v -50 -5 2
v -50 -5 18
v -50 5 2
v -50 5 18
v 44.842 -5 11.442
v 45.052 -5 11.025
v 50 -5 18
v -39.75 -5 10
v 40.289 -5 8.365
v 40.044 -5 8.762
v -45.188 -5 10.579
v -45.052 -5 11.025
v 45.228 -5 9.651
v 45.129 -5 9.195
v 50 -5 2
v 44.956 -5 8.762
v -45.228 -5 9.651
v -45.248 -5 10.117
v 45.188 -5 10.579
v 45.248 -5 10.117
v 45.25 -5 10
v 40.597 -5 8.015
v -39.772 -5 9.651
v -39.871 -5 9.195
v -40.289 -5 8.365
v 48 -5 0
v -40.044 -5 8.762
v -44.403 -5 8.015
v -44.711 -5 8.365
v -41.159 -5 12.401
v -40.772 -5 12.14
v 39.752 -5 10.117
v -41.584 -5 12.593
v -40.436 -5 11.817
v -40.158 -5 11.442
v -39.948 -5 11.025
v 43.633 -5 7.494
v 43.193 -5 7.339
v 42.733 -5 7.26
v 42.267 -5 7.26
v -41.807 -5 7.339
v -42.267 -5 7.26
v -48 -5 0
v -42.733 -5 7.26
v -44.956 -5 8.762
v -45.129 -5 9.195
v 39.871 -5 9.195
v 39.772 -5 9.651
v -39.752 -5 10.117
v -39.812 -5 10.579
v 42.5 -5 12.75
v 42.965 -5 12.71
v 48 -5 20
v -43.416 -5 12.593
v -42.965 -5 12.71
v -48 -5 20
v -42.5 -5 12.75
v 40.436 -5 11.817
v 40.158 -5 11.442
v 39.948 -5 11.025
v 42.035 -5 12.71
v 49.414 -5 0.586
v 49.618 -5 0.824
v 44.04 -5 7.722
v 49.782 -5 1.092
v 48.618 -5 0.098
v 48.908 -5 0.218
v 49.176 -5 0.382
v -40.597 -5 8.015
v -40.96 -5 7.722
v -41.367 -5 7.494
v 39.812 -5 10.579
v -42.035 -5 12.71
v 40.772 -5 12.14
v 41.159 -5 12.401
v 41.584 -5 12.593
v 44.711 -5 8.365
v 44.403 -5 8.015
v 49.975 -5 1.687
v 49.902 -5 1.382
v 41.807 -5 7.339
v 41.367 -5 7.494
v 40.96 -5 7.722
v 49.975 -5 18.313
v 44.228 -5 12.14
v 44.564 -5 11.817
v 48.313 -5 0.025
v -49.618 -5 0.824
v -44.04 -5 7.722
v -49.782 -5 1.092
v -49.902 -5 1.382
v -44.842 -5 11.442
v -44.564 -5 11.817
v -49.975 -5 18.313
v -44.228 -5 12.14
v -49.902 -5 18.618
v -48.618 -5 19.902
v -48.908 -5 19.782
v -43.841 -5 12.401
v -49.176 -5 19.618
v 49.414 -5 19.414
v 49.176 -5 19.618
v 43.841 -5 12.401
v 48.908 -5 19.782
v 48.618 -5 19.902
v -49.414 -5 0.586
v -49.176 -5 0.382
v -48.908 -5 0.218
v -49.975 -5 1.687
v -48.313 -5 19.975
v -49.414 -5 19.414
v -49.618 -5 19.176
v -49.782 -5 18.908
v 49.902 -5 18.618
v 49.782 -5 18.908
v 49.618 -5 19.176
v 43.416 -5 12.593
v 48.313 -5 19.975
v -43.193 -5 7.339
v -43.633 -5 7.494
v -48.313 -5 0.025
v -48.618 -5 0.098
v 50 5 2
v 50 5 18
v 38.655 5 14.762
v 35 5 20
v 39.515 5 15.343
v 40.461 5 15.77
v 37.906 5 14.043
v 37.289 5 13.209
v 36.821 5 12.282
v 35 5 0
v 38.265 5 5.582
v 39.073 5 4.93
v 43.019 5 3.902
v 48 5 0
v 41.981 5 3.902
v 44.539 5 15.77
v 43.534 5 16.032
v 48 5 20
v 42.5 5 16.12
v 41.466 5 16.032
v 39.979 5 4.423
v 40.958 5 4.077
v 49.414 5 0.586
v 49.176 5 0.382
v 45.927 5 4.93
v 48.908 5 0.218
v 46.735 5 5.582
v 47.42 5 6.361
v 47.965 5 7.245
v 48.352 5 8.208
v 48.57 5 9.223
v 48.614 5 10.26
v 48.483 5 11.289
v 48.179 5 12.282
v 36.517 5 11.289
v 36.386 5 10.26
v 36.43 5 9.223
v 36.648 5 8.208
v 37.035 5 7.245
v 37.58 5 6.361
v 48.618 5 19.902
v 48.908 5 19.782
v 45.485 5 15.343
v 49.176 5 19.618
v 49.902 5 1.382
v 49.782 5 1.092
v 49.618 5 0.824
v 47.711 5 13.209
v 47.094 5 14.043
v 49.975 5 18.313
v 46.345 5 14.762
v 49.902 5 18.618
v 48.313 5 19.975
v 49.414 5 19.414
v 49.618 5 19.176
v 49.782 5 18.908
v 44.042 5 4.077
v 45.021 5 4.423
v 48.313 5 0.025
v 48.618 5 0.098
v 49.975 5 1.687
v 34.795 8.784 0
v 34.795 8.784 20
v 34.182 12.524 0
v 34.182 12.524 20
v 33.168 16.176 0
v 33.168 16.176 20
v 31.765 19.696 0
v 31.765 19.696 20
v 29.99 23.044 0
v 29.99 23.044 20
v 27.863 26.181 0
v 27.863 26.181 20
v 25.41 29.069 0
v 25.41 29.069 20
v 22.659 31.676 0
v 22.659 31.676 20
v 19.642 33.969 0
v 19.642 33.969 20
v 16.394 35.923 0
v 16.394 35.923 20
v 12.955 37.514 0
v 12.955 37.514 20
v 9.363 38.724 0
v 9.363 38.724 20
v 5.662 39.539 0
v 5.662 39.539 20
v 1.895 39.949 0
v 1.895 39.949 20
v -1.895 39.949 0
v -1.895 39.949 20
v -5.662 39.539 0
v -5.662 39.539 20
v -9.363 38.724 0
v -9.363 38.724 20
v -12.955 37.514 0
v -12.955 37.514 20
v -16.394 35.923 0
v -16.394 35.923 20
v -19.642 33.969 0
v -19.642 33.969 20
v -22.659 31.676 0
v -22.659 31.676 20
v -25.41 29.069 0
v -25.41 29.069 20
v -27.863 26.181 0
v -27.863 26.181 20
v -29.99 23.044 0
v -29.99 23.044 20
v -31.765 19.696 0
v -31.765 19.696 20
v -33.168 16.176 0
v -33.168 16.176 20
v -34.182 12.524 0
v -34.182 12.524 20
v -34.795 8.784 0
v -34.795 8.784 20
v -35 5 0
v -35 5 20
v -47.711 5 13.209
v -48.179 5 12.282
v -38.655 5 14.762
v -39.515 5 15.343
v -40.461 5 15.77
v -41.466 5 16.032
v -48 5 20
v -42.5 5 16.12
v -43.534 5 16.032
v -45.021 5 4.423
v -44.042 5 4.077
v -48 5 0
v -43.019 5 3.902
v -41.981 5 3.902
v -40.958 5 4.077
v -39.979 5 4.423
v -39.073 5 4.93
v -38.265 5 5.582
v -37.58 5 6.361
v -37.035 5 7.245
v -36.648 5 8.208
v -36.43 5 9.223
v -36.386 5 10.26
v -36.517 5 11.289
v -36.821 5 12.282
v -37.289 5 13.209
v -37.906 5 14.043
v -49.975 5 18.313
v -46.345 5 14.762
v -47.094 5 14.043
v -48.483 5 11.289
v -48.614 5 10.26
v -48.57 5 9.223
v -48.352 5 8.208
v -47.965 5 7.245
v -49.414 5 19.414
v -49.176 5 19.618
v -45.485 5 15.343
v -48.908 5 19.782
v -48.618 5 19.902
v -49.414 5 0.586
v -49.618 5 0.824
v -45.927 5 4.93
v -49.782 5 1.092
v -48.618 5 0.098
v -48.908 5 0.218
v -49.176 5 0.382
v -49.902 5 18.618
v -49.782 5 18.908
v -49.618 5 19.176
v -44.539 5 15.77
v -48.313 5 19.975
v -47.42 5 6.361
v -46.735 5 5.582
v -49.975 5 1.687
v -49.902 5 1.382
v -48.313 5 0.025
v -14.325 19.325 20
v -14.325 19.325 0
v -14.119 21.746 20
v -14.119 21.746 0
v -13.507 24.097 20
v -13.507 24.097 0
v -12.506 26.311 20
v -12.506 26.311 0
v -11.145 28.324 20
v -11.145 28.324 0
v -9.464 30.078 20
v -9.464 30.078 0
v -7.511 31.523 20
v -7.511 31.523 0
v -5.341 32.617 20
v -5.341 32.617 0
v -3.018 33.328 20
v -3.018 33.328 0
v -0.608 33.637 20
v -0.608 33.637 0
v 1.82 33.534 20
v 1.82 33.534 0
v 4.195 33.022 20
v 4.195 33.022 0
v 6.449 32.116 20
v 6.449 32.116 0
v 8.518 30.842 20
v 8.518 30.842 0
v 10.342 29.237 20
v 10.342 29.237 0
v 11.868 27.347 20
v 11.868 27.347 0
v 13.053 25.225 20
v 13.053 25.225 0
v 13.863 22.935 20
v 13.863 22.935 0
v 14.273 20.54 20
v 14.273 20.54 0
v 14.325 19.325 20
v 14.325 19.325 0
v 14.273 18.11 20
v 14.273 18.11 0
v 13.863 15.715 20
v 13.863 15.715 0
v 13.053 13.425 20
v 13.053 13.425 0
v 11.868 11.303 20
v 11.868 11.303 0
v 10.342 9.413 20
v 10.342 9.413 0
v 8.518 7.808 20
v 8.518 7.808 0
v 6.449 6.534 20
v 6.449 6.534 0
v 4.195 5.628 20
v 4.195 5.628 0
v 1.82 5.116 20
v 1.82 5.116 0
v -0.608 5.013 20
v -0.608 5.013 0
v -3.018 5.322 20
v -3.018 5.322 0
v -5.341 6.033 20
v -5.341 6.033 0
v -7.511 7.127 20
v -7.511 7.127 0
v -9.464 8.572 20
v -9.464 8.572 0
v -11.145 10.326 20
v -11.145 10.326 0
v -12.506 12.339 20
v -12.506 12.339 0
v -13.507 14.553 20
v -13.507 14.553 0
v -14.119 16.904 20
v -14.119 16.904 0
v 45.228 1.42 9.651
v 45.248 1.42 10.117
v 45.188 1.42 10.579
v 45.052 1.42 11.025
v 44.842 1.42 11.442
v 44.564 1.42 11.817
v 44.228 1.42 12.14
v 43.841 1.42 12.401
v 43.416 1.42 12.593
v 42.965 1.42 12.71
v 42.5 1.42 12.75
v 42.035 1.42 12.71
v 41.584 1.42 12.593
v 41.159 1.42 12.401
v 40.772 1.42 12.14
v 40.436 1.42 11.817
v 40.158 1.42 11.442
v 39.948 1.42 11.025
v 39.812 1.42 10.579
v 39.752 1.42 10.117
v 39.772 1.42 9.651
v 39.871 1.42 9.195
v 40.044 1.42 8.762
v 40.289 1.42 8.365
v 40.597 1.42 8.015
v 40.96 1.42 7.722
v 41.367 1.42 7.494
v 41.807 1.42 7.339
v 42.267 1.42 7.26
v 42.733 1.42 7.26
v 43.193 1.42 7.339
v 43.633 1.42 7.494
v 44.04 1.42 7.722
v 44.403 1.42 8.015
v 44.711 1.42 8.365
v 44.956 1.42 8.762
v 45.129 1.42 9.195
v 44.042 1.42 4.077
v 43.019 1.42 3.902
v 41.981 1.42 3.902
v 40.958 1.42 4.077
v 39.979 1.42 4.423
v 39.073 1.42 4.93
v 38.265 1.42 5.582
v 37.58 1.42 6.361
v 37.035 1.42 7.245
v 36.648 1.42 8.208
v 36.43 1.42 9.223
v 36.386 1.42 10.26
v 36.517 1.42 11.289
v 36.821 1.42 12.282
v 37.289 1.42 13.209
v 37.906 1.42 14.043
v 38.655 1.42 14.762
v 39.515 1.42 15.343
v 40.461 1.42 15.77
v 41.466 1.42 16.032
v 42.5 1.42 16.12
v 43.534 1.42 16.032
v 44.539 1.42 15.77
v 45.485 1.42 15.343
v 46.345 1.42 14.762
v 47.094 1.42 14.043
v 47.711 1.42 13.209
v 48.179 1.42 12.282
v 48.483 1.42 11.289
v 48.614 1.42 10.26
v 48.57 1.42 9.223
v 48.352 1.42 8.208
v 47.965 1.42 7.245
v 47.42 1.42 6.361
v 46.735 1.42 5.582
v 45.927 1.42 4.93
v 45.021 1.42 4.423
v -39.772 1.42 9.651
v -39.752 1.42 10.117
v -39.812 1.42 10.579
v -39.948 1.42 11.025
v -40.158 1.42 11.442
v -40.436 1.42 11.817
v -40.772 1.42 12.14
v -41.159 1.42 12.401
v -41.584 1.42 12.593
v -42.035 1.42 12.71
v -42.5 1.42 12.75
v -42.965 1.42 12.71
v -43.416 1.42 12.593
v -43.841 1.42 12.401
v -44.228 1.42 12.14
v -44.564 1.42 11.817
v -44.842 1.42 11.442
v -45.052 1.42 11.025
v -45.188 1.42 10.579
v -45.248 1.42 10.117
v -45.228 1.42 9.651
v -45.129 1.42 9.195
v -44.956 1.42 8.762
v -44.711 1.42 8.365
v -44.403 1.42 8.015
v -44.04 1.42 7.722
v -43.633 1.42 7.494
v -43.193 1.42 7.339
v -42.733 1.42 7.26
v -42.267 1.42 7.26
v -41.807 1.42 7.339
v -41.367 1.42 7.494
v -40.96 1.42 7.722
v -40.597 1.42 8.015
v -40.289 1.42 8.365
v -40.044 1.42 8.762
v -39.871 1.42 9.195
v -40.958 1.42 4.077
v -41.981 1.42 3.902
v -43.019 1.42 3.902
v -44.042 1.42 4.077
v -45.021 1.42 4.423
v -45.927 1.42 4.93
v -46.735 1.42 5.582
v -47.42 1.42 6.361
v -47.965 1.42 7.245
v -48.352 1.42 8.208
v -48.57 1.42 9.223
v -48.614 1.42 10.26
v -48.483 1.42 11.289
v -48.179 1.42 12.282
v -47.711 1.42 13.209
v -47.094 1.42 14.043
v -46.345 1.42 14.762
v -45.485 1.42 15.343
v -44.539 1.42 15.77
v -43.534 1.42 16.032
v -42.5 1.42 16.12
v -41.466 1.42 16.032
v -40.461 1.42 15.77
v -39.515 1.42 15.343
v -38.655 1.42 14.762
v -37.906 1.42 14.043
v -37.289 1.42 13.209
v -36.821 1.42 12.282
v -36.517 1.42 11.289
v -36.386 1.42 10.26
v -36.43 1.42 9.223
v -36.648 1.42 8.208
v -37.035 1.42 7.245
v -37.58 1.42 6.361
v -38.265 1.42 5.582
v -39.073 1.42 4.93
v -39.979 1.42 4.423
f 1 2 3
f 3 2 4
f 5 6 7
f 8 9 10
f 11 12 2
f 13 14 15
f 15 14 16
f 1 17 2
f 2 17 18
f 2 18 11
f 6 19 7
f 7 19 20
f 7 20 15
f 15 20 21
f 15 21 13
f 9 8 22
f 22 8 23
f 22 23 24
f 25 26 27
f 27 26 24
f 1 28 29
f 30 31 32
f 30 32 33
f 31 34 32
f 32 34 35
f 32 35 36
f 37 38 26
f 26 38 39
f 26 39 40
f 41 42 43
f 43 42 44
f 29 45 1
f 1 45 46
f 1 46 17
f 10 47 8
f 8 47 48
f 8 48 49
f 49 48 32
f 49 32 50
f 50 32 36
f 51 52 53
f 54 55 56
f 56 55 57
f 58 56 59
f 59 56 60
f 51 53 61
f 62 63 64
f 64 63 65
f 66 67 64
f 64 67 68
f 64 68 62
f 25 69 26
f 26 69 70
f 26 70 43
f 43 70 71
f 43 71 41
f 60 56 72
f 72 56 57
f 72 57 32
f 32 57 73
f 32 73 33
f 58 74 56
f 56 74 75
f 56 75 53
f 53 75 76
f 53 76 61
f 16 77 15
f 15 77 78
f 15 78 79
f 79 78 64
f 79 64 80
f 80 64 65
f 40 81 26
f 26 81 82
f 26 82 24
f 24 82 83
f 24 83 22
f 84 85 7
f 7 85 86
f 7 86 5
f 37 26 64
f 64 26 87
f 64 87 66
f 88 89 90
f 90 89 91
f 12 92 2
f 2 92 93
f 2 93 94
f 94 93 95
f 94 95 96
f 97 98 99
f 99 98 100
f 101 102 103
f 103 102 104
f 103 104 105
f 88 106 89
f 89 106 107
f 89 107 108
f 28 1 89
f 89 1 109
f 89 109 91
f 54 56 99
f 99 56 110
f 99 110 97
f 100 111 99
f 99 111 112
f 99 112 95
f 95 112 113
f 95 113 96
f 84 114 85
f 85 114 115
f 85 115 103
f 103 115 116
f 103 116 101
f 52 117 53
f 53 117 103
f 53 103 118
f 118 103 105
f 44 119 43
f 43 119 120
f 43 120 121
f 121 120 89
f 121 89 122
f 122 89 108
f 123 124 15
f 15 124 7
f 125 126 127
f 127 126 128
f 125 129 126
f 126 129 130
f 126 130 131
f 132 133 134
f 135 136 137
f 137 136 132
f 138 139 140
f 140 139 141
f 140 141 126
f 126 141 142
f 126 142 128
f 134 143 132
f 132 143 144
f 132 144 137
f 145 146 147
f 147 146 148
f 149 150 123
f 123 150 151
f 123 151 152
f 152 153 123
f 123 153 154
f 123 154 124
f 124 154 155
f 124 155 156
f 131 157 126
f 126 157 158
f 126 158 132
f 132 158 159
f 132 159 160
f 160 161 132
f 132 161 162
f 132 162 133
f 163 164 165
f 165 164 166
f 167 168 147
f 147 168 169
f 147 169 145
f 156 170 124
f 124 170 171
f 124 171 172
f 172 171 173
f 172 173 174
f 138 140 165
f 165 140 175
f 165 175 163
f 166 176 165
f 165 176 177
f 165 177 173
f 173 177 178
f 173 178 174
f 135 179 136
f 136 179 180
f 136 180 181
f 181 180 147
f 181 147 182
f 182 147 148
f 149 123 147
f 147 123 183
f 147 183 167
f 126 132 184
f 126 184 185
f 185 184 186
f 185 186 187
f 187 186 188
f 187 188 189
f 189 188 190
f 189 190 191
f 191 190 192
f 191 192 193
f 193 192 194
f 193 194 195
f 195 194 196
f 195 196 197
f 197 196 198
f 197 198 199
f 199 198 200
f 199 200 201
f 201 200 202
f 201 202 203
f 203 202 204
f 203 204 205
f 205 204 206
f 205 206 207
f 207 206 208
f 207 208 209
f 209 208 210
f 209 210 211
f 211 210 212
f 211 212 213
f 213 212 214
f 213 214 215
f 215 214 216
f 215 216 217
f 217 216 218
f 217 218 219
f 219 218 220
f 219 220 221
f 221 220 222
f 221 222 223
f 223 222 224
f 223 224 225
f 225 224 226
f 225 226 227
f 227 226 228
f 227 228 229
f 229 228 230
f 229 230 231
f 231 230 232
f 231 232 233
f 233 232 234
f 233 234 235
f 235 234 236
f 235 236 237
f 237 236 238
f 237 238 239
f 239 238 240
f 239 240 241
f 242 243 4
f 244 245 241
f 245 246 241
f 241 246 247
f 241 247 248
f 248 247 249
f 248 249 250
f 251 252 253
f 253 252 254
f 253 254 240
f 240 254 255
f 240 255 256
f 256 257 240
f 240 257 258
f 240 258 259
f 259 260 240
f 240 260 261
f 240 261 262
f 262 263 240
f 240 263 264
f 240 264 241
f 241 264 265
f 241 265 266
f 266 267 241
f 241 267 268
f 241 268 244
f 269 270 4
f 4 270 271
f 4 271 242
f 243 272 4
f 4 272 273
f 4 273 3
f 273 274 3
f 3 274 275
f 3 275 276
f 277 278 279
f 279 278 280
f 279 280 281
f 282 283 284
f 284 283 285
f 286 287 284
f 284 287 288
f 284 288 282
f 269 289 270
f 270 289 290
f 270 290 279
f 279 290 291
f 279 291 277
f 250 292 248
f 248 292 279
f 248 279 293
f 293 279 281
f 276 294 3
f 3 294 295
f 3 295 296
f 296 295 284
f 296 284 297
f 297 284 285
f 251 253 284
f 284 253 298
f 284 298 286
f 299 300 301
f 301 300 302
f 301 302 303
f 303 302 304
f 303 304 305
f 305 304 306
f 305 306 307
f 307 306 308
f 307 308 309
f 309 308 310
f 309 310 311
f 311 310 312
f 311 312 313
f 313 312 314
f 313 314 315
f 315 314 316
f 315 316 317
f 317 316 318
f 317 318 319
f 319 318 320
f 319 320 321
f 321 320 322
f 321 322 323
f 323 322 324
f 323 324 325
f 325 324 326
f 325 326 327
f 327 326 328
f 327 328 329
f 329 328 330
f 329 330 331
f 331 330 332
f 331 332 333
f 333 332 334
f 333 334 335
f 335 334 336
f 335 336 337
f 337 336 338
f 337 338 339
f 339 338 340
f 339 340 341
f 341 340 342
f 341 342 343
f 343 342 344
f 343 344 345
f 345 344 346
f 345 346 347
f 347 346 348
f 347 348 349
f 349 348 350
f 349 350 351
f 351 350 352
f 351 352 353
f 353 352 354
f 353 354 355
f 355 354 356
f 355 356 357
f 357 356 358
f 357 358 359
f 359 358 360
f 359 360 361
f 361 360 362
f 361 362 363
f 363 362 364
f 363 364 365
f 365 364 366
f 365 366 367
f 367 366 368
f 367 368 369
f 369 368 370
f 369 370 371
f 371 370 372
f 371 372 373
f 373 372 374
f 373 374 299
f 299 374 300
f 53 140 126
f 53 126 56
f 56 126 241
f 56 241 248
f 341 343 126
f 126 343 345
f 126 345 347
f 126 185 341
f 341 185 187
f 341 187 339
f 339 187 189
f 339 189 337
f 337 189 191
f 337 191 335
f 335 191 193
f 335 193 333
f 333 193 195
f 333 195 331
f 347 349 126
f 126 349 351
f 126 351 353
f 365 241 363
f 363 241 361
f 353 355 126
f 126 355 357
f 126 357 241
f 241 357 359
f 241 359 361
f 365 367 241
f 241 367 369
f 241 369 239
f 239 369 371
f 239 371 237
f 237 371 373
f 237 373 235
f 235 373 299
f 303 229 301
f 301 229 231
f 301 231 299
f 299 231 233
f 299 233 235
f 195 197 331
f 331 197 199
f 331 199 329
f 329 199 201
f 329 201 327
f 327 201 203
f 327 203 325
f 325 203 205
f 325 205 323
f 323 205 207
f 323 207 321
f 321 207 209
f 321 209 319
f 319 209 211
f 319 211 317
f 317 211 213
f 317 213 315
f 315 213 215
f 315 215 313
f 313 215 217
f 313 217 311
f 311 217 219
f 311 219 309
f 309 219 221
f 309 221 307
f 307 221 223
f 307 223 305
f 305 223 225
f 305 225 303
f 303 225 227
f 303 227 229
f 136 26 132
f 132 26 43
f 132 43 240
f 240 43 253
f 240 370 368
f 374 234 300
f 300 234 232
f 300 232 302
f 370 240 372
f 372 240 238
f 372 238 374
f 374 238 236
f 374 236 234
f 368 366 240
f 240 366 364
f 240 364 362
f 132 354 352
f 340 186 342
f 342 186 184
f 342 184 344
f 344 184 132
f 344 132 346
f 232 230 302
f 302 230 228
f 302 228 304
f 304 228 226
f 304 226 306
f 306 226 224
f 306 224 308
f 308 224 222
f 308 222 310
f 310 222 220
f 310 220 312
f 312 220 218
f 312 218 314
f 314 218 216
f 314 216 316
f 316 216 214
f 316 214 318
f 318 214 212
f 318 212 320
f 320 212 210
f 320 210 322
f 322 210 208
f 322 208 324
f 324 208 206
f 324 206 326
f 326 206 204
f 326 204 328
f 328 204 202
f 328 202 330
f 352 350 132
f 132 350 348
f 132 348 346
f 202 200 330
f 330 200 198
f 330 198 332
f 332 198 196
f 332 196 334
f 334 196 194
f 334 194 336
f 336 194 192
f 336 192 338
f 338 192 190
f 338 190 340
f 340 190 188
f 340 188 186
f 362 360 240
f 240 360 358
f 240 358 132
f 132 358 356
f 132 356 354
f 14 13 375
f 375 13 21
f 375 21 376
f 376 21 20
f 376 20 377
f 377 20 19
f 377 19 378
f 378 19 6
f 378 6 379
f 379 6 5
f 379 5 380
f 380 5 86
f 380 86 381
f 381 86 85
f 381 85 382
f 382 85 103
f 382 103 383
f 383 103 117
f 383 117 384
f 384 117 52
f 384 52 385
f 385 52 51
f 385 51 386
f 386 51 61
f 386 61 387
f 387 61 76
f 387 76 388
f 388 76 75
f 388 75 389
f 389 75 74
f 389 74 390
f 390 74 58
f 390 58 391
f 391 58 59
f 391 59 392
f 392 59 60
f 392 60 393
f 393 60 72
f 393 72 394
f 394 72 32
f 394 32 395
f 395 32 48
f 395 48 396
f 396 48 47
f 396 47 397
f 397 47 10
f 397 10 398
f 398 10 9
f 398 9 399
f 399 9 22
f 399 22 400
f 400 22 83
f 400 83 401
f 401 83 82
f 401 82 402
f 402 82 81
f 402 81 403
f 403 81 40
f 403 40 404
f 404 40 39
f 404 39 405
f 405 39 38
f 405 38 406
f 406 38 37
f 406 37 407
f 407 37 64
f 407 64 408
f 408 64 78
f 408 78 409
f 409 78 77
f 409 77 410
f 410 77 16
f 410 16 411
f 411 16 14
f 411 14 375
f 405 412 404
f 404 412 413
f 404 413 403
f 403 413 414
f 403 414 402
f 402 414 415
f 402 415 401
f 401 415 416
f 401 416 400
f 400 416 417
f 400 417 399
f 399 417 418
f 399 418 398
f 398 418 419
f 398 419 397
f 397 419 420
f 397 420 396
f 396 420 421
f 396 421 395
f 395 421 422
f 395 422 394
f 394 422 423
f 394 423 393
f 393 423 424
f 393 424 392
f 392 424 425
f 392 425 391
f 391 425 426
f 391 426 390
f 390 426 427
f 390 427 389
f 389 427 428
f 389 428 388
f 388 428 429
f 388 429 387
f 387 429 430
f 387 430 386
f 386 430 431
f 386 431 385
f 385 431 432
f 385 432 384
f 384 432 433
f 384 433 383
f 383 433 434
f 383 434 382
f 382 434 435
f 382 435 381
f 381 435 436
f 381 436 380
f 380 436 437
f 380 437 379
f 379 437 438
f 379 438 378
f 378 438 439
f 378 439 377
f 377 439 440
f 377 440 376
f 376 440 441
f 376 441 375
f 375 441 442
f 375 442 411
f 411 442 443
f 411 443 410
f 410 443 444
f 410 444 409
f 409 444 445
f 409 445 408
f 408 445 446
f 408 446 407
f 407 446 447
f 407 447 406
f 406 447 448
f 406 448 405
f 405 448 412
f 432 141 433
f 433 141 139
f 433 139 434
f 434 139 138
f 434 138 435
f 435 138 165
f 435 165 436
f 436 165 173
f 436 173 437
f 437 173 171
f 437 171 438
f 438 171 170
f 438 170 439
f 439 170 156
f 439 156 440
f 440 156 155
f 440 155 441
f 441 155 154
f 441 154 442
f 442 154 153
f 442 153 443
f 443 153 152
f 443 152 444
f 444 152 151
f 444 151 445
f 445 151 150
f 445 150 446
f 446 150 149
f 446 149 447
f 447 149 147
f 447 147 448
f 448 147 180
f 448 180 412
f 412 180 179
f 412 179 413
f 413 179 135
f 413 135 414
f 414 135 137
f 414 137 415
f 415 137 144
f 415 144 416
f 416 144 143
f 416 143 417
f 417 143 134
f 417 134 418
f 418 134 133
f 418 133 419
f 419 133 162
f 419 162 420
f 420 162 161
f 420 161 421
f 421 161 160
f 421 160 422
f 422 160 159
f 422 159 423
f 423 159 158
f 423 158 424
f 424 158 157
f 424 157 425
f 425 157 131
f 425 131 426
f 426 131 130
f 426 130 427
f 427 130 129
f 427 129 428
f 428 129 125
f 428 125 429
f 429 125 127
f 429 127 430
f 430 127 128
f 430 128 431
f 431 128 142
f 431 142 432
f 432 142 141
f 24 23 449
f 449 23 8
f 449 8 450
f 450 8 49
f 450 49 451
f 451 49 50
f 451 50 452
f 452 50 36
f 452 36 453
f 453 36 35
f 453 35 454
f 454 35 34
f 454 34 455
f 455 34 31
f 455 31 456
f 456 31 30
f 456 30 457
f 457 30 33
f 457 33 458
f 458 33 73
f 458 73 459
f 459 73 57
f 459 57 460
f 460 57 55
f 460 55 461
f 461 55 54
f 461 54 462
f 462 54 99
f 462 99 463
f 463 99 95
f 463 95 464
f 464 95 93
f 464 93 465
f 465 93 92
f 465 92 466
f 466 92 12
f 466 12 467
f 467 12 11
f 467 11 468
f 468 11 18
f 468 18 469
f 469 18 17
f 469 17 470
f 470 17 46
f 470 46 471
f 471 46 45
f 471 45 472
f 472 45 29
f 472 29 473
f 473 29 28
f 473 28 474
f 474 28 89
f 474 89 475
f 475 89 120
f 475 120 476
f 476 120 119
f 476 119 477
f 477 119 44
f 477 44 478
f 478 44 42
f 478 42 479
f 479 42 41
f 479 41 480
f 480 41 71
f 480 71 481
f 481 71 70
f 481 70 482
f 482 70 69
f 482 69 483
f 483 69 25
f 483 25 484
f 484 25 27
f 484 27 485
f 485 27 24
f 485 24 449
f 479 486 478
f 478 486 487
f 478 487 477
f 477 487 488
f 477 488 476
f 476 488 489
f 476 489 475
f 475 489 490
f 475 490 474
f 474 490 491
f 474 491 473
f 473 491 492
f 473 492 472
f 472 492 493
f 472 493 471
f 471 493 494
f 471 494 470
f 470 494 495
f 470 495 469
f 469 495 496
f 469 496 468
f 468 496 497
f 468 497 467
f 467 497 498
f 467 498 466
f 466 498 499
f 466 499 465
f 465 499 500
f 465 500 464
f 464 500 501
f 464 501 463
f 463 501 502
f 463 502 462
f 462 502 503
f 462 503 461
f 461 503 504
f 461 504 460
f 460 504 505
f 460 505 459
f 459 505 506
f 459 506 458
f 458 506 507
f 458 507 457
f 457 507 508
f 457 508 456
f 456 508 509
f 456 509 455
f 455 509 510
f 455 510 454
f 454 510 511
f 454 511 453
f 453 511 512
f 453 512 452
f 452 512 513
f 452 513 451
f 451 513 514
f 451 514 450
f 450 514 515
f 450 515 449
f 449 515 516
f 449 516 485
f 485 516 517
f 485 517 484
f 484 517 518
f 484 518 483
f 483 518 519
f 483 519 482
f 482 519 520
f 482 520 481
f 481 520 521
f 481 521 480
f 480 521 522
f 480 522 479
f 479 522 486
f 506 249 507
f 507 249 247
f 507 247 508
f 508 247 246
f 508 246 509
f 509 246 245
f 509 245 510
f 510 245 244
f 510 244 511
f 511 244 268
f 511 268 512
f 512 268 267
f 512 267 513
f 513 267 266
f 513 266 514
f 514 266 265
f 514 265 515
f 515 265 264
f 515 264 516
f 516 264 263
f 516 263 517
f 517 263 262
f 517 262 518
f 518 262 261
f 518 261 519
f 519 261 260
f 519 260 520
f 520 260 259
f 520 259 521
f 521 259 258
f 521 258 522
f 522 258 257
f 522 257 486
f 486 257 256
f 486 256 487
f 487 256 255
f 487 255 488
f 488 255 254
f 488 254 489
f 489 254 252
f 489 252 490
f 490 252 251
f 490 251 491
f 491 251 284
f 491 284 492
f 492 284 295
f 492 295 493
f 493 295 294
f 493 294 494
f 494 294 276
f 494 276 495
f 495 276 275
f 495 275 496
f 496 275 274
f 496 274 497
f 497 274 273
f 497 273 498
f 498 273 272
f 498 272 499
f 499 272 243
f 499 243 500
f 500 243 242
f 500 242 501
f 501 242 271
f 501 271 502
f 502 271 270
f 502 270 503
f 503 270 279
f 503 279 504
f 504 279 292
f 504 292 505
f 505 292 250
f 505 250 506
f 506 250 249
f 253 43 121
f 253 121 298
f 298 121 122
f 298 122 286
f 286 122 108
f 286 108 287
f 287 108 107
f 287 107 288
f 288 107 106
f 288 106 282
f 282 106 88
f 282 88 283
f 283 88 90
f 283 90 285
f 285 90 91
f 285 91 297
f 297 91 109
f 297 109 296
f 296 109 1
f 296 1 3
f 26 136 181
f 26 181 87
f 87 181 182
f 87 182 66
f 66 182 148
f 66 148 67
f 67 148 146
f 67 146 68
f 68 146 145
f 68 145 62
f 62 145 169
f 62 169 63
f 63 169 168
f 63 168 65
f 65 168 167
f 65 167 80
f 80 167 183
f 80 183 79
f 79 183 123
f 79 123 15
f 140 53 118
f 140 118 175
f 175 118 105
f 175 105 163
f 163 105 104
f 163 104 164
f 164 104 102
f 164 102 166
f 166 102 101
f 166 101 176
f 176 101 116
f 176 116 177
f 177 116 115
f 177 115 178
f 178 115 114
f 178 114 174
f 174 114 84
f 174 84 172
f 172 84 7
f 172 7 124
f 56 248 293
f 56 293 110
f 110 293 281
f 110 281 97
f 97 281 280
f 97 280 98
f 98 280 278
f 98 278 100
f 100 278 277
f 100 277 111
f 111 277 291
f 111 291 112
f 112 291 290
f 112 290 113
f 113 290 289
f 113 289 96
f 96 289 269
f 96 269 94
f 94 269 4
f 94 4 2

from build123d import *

# Parameters (mm, degrees)
SKETCH3_R                               = 14.325
BOSS_EXTRUDE3_DEPTH                     = 20
CBORE_FOR_M5_HEX_HEAD_BOLT1_D           = 5.5
CBORE_FOR_M5_HEX_HEAD_BOLT1_DEPTH       = 10
CBORE_FOR_M5_HEX_HEAD_BOLT1_CBORE_D     = 12.24
CBORE_FOR_M5_HEX_HEAD_BOLT1_CBORE_DEPTH = 3.58
FILLET1_R                               = 2


with BuildPart() as part:
    # Sketch3 → Boss-Extrude3 (new body)
    with BuildSketch(Plane.XY):
        with BuildLine():
            ThreePointArc((35, 5), (0, 40), (-35, 5))
            Line((-35, 5), (-50, 5))
            Line((-50, 5), (-50, -5))
            Line((-50, -5), (50, -5))
            Line((50, -5), (50, 5))
            Line((50, 5), (35, 5))
        make_face()
        with Locations((0, 19.325)):
            Circle(SKETCH3_R, mode=Mode.SUBTRACT)
    extrude(amount=BOSS_EXTRUDE3_DEPTH)

    # CBORE for M5 Hex Head Bolt1
    with Locations(Plane(origin=(0, 5, 0), x_dir=(1, 0, 0), z_dir=(0, 1, 0))):
        with Locations((-42.5, -10), (42.5, -10)):
            CounterBoreHole(CBORE_FOR_M5_HEX_HEAD_BOLT1_D / 2, CBORE_FOR_M5_HEX_HEAD_BOLT1_CBORE_D / 2, CBORE_FOR_M5_HEX_HEAD_BOLT1_CBORE_DEPTH, depth=CBORE_FOR_M5_HEX_HEAD_BOLT1_DEPTH)

    # Fillet1
    fillet1_edges = [part.edges().sort_by_distance(p)[0] for p in [
        (50, 0, 0),
        (-50, 0, 0),
        (50, 0, 20),
        (-50, 0, 20),
    ]]
    fillet(fillet1_edges, radius=FILLET1_R)


solid = part.part
